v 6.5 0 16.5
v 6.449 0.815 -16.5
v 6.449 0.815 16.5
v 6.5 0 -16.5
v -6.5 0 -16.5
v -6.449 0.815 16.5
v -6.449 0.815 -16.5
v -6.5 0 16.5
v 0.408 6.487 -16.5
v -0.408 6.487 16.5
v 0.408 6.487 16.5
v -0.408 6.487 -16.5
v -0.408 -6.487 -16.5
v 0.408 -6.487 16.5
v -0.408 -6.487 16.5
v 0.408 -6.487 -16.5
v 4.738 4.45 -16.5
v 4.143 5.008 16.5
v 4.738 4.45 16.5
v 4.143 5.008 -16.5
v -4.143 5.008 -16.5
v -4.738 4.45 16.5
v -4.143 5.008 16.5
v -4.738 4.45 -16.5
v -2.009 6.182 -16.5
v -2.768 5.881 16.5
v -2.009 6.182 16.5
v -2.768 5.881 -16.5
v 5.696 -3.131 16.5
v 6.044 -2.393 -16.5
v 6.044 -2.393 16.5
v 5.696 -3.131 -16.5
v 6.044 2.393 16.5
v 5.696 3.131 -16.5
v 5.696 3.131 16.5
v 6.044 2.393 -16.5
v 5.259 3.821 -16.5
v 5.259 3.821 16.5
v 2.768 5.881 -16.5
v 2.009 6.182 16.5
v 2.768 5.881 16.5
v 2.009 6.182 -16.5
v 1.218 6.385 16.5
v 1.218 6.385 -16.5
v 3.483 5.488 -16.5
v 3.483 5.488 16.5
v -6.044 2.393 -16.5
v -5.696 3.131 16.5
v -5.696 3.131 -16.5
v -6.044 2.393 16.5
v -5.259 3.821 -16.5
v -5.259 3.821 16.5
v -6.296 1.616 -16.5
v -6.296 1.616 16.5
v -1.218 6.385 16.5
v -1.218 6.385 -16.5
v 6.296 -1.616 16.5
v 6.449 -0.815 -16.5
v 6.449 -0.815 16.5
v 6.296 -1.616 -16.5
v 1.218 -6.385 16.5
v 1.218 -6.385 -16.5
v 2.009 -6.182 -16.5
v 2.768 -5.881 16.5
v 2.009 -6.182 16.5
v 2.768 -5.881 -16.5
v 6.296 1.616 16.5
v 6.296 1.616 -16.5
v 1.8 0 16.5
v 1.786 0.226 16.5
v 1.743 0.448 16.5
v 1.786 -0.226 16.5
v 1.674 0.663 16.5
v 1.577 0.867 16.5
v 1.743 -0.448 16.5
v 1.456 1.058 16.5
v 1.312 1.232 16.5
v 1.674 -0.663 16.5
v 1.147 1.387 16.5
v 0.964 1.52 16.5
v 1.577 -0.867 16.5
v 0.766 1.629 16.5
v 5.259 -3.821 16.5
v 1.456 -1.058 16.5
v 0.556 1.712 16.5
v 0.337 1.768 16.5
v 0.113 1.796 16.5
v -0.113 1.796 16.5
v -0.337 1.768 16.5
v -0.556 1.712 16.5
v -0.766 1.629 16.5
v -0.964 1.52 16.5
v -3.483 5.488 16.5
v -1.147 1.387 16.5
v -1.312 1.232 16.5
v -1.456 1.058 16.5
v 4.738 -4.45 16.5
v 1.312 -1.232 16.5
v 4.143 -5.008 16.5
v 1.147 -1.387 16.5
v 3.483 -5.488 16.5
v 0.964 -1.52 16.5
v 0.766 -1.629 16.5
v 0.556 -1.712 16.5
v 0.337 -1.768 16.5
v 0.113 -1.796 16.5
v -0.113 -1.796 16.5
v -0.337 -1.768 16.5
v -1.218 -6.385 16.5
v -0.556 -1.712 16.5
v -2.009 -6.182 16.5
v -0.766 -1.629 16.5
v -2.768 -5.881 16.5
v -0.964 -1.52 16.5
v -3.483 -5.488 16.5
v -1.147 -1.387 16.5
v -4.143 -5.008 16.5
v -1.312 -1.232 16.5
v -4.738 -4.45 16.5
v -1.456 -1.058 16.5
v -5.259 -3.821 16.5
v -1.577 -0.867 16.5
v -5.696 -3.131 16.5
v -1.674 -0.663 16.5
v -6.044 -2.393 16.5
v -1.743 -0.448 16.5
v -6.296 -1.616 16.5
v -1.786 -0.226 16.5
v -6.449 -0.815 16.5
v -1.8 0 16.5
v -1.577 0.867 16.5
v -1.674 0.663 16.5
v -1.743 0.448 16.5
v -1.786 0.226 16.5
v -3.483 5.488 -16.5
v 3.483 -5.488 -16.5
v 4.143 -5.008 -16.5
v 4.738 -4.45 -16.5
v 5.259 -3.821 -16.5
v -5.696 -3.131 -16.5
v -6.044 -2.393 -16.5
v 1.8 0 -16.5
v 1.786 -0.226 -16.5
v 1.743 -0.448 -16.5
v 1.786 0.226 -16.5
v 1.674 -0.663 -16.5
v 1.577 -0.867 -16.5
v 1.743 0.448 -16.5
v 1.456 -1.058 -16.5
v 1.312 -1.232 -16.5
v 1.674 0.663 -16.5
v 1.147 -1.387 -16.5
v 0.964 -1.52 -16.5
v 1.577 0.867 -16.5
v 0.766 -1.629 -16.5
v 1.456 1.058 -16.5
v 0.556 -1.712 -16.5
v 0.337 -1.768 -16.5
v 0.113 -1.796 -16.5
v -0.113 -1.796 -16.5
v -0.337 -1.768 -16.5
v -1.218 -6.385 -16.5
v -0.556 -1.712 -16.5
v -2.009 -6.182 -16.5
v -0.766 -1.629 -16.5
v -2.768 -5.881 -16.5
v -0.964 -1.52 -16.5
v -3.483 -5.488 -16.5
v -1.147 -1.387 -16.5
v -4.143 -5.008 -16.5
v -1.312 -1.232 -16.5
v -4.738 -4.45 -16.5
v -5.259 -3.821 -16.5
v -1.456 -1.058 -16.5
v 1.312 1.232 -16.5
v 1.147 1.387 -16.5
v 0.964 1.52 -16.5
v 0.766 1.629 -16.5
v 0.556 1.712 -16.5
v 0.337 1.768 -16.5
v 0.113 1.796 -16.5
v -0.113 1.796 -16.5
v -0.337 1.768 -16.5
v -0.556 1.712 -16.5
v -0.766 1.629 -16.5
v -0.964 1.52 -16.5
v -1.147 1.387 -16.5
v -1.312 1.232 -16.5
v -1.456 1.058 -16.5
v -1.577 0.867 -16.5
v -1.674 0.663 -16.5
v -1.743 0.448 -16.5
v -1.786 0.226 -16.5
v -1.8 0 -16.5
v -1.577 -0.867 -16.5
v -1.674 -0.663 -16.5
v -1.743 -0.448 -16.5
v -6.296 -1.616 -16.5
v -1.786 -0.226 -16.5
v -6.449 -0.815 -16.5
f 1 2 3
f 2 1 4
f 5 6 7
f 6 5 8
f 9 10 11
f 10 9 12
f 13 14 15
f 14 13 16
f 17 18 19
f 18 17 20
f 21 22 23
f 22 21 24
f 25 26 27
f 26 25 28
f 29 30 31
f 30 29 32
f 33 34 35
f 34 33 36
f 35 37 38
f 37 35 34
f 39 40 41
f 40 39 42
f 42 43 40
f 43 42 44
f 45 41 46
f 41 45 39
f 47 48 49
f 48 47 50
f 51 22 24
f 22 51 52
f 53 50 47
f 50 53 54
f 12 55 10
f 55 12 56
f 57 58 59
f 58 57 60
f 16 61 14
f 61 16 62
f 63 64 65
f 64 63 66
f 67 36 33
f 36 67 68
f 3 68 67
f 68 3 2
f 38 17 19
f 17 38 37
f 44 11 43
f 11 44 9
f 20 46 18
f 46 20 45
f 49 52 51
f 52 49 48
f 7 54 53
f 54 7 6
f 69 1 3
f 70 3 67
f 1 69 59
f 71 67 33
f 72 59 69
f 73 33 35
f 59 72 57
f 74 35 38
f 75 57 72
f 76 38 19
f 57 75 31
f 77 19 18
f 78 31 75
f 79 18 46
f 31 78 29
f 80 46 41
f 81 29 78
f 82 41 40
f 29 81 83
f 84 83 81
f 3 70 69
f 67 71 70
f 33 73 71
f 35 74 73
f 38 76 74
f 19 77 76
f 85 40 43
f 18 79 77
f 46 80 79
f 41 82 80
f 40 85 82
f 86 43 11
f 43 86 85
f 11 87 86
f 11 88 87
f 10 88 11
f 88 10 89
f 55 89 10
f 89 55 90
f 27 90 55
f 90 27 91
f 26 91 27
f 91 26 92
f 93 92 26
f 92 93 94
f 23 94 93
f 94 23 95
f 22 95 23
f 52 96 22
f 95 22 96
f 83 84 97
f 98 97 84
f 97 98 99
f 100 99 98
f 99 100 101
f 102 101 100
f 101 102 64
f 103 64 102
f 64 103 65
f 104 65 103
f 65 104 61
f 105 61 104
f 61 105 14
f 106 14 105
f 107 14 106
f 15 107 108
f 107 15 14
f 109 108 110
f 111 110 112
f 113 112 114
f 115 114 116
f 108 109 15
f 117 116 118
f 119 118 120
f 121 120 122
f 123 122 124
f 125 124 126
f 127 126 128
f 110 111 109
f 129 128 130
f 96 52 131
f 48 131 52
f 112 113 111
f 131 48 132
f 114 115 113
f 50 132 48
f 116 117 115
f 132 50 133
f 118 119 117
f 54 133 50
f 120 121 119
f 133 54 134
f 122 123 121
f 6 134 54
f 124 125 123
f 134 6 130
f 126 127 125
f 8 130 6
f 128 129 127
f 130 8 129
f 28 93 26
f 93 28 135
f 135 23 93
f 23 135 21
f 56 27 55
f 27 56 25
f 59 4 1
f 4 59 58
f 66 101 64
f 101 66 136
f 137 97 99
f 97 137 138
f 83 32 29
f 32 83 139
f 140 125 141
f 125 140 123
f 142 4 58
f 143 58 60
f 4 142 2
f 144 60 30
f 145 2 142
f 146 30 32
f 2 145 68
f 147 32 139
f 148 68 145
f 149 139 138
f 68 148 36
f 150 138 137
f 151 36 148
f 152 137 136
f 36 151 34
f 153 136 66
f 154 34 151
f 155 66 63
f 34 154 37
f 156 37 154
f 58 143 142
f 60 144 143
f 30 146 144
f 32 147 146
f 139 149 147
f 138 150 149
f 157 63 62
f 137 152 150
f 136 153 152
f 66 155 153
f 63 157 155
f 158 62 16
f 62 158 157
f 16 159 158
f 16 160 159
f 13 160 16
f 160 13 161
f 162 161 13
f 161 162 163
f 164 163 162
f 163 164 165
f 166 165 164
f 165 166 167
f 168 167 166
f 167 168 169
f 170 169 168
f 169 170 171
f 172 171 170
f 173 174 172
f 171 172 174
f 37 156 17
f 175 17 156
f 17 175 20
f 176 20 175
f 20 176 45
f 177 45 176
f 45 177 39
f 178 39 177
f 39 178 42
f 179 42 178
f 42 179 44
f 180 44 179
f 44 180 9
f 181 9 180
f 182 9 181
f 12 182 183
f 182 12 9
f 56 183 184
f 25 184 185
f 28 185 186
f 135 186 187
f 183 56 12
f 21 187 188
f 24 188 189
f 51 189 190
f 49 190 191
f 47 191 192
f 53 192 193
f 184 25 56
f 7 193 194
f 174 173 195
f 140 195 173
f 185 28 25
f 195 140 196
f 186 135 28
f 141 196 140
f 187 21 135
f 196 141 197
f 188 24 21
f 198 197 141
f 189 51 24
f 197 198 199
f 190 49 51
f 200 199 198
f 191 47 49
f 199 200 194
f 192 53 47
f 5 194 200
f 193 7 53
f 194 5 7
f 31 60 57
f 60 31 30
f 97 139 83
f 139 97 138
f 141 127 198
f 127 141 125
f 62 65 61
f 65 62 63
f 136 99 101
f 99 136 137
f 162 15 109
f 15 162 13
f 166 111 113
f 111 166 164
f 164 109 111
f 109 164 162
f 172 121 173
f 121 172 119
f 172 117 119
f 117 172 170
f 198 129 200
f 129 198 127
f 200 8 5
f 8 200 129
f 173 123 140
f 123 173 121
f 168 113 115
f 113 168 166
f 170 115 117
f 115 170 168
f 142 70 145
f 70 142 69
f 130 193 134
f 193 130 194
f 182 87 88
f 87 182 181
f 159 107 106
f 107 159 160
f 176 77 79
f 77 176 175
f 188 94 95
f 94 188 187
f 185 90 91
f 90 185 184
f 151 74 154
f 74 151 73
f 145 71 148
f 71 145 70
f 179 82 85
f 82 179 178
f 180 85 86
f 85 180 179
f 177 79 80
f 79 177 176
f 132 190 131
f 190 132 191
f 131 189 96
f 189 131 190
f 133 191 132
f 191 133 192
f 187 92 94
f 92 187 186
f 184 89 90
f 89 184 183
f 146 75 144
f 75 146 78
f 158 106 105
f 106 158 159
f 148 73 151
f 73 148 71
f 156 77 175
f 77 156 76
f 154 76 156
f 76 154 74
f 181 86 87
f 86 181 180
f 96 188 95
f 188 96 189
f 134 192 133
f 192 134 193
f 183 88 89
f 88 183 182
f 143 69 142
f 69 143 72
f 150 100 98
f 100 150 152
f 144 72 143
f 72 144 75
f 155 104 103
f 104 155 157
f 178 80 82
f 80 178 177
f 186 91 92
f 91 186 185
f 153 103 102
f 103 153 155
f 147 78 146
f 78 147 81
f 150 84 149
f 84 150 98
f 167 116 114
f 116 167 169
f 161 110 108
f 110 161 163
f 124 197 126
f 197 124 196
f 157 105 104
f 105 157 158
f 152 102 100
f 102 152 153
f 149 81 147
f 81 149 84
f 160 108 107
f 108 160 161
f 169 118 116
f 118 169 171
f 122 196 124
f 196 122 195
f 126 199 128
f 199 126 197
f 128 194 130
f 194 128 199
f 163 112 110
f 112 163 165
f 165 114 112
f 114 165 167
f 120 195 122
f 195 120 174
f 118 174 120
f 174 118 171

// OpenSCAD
$fn = 50;


difference() {
	union() {
		translate(v = [0, 0, -16.5000000000]) {
			cylinder(h = 33, r = 6.5000000000);
		}
	}
	union() {
		translate(v = [0, 0, -100.0000000000]) {
			cylinder(h = 200, r = 1.8000000000);
		}
	}
}
